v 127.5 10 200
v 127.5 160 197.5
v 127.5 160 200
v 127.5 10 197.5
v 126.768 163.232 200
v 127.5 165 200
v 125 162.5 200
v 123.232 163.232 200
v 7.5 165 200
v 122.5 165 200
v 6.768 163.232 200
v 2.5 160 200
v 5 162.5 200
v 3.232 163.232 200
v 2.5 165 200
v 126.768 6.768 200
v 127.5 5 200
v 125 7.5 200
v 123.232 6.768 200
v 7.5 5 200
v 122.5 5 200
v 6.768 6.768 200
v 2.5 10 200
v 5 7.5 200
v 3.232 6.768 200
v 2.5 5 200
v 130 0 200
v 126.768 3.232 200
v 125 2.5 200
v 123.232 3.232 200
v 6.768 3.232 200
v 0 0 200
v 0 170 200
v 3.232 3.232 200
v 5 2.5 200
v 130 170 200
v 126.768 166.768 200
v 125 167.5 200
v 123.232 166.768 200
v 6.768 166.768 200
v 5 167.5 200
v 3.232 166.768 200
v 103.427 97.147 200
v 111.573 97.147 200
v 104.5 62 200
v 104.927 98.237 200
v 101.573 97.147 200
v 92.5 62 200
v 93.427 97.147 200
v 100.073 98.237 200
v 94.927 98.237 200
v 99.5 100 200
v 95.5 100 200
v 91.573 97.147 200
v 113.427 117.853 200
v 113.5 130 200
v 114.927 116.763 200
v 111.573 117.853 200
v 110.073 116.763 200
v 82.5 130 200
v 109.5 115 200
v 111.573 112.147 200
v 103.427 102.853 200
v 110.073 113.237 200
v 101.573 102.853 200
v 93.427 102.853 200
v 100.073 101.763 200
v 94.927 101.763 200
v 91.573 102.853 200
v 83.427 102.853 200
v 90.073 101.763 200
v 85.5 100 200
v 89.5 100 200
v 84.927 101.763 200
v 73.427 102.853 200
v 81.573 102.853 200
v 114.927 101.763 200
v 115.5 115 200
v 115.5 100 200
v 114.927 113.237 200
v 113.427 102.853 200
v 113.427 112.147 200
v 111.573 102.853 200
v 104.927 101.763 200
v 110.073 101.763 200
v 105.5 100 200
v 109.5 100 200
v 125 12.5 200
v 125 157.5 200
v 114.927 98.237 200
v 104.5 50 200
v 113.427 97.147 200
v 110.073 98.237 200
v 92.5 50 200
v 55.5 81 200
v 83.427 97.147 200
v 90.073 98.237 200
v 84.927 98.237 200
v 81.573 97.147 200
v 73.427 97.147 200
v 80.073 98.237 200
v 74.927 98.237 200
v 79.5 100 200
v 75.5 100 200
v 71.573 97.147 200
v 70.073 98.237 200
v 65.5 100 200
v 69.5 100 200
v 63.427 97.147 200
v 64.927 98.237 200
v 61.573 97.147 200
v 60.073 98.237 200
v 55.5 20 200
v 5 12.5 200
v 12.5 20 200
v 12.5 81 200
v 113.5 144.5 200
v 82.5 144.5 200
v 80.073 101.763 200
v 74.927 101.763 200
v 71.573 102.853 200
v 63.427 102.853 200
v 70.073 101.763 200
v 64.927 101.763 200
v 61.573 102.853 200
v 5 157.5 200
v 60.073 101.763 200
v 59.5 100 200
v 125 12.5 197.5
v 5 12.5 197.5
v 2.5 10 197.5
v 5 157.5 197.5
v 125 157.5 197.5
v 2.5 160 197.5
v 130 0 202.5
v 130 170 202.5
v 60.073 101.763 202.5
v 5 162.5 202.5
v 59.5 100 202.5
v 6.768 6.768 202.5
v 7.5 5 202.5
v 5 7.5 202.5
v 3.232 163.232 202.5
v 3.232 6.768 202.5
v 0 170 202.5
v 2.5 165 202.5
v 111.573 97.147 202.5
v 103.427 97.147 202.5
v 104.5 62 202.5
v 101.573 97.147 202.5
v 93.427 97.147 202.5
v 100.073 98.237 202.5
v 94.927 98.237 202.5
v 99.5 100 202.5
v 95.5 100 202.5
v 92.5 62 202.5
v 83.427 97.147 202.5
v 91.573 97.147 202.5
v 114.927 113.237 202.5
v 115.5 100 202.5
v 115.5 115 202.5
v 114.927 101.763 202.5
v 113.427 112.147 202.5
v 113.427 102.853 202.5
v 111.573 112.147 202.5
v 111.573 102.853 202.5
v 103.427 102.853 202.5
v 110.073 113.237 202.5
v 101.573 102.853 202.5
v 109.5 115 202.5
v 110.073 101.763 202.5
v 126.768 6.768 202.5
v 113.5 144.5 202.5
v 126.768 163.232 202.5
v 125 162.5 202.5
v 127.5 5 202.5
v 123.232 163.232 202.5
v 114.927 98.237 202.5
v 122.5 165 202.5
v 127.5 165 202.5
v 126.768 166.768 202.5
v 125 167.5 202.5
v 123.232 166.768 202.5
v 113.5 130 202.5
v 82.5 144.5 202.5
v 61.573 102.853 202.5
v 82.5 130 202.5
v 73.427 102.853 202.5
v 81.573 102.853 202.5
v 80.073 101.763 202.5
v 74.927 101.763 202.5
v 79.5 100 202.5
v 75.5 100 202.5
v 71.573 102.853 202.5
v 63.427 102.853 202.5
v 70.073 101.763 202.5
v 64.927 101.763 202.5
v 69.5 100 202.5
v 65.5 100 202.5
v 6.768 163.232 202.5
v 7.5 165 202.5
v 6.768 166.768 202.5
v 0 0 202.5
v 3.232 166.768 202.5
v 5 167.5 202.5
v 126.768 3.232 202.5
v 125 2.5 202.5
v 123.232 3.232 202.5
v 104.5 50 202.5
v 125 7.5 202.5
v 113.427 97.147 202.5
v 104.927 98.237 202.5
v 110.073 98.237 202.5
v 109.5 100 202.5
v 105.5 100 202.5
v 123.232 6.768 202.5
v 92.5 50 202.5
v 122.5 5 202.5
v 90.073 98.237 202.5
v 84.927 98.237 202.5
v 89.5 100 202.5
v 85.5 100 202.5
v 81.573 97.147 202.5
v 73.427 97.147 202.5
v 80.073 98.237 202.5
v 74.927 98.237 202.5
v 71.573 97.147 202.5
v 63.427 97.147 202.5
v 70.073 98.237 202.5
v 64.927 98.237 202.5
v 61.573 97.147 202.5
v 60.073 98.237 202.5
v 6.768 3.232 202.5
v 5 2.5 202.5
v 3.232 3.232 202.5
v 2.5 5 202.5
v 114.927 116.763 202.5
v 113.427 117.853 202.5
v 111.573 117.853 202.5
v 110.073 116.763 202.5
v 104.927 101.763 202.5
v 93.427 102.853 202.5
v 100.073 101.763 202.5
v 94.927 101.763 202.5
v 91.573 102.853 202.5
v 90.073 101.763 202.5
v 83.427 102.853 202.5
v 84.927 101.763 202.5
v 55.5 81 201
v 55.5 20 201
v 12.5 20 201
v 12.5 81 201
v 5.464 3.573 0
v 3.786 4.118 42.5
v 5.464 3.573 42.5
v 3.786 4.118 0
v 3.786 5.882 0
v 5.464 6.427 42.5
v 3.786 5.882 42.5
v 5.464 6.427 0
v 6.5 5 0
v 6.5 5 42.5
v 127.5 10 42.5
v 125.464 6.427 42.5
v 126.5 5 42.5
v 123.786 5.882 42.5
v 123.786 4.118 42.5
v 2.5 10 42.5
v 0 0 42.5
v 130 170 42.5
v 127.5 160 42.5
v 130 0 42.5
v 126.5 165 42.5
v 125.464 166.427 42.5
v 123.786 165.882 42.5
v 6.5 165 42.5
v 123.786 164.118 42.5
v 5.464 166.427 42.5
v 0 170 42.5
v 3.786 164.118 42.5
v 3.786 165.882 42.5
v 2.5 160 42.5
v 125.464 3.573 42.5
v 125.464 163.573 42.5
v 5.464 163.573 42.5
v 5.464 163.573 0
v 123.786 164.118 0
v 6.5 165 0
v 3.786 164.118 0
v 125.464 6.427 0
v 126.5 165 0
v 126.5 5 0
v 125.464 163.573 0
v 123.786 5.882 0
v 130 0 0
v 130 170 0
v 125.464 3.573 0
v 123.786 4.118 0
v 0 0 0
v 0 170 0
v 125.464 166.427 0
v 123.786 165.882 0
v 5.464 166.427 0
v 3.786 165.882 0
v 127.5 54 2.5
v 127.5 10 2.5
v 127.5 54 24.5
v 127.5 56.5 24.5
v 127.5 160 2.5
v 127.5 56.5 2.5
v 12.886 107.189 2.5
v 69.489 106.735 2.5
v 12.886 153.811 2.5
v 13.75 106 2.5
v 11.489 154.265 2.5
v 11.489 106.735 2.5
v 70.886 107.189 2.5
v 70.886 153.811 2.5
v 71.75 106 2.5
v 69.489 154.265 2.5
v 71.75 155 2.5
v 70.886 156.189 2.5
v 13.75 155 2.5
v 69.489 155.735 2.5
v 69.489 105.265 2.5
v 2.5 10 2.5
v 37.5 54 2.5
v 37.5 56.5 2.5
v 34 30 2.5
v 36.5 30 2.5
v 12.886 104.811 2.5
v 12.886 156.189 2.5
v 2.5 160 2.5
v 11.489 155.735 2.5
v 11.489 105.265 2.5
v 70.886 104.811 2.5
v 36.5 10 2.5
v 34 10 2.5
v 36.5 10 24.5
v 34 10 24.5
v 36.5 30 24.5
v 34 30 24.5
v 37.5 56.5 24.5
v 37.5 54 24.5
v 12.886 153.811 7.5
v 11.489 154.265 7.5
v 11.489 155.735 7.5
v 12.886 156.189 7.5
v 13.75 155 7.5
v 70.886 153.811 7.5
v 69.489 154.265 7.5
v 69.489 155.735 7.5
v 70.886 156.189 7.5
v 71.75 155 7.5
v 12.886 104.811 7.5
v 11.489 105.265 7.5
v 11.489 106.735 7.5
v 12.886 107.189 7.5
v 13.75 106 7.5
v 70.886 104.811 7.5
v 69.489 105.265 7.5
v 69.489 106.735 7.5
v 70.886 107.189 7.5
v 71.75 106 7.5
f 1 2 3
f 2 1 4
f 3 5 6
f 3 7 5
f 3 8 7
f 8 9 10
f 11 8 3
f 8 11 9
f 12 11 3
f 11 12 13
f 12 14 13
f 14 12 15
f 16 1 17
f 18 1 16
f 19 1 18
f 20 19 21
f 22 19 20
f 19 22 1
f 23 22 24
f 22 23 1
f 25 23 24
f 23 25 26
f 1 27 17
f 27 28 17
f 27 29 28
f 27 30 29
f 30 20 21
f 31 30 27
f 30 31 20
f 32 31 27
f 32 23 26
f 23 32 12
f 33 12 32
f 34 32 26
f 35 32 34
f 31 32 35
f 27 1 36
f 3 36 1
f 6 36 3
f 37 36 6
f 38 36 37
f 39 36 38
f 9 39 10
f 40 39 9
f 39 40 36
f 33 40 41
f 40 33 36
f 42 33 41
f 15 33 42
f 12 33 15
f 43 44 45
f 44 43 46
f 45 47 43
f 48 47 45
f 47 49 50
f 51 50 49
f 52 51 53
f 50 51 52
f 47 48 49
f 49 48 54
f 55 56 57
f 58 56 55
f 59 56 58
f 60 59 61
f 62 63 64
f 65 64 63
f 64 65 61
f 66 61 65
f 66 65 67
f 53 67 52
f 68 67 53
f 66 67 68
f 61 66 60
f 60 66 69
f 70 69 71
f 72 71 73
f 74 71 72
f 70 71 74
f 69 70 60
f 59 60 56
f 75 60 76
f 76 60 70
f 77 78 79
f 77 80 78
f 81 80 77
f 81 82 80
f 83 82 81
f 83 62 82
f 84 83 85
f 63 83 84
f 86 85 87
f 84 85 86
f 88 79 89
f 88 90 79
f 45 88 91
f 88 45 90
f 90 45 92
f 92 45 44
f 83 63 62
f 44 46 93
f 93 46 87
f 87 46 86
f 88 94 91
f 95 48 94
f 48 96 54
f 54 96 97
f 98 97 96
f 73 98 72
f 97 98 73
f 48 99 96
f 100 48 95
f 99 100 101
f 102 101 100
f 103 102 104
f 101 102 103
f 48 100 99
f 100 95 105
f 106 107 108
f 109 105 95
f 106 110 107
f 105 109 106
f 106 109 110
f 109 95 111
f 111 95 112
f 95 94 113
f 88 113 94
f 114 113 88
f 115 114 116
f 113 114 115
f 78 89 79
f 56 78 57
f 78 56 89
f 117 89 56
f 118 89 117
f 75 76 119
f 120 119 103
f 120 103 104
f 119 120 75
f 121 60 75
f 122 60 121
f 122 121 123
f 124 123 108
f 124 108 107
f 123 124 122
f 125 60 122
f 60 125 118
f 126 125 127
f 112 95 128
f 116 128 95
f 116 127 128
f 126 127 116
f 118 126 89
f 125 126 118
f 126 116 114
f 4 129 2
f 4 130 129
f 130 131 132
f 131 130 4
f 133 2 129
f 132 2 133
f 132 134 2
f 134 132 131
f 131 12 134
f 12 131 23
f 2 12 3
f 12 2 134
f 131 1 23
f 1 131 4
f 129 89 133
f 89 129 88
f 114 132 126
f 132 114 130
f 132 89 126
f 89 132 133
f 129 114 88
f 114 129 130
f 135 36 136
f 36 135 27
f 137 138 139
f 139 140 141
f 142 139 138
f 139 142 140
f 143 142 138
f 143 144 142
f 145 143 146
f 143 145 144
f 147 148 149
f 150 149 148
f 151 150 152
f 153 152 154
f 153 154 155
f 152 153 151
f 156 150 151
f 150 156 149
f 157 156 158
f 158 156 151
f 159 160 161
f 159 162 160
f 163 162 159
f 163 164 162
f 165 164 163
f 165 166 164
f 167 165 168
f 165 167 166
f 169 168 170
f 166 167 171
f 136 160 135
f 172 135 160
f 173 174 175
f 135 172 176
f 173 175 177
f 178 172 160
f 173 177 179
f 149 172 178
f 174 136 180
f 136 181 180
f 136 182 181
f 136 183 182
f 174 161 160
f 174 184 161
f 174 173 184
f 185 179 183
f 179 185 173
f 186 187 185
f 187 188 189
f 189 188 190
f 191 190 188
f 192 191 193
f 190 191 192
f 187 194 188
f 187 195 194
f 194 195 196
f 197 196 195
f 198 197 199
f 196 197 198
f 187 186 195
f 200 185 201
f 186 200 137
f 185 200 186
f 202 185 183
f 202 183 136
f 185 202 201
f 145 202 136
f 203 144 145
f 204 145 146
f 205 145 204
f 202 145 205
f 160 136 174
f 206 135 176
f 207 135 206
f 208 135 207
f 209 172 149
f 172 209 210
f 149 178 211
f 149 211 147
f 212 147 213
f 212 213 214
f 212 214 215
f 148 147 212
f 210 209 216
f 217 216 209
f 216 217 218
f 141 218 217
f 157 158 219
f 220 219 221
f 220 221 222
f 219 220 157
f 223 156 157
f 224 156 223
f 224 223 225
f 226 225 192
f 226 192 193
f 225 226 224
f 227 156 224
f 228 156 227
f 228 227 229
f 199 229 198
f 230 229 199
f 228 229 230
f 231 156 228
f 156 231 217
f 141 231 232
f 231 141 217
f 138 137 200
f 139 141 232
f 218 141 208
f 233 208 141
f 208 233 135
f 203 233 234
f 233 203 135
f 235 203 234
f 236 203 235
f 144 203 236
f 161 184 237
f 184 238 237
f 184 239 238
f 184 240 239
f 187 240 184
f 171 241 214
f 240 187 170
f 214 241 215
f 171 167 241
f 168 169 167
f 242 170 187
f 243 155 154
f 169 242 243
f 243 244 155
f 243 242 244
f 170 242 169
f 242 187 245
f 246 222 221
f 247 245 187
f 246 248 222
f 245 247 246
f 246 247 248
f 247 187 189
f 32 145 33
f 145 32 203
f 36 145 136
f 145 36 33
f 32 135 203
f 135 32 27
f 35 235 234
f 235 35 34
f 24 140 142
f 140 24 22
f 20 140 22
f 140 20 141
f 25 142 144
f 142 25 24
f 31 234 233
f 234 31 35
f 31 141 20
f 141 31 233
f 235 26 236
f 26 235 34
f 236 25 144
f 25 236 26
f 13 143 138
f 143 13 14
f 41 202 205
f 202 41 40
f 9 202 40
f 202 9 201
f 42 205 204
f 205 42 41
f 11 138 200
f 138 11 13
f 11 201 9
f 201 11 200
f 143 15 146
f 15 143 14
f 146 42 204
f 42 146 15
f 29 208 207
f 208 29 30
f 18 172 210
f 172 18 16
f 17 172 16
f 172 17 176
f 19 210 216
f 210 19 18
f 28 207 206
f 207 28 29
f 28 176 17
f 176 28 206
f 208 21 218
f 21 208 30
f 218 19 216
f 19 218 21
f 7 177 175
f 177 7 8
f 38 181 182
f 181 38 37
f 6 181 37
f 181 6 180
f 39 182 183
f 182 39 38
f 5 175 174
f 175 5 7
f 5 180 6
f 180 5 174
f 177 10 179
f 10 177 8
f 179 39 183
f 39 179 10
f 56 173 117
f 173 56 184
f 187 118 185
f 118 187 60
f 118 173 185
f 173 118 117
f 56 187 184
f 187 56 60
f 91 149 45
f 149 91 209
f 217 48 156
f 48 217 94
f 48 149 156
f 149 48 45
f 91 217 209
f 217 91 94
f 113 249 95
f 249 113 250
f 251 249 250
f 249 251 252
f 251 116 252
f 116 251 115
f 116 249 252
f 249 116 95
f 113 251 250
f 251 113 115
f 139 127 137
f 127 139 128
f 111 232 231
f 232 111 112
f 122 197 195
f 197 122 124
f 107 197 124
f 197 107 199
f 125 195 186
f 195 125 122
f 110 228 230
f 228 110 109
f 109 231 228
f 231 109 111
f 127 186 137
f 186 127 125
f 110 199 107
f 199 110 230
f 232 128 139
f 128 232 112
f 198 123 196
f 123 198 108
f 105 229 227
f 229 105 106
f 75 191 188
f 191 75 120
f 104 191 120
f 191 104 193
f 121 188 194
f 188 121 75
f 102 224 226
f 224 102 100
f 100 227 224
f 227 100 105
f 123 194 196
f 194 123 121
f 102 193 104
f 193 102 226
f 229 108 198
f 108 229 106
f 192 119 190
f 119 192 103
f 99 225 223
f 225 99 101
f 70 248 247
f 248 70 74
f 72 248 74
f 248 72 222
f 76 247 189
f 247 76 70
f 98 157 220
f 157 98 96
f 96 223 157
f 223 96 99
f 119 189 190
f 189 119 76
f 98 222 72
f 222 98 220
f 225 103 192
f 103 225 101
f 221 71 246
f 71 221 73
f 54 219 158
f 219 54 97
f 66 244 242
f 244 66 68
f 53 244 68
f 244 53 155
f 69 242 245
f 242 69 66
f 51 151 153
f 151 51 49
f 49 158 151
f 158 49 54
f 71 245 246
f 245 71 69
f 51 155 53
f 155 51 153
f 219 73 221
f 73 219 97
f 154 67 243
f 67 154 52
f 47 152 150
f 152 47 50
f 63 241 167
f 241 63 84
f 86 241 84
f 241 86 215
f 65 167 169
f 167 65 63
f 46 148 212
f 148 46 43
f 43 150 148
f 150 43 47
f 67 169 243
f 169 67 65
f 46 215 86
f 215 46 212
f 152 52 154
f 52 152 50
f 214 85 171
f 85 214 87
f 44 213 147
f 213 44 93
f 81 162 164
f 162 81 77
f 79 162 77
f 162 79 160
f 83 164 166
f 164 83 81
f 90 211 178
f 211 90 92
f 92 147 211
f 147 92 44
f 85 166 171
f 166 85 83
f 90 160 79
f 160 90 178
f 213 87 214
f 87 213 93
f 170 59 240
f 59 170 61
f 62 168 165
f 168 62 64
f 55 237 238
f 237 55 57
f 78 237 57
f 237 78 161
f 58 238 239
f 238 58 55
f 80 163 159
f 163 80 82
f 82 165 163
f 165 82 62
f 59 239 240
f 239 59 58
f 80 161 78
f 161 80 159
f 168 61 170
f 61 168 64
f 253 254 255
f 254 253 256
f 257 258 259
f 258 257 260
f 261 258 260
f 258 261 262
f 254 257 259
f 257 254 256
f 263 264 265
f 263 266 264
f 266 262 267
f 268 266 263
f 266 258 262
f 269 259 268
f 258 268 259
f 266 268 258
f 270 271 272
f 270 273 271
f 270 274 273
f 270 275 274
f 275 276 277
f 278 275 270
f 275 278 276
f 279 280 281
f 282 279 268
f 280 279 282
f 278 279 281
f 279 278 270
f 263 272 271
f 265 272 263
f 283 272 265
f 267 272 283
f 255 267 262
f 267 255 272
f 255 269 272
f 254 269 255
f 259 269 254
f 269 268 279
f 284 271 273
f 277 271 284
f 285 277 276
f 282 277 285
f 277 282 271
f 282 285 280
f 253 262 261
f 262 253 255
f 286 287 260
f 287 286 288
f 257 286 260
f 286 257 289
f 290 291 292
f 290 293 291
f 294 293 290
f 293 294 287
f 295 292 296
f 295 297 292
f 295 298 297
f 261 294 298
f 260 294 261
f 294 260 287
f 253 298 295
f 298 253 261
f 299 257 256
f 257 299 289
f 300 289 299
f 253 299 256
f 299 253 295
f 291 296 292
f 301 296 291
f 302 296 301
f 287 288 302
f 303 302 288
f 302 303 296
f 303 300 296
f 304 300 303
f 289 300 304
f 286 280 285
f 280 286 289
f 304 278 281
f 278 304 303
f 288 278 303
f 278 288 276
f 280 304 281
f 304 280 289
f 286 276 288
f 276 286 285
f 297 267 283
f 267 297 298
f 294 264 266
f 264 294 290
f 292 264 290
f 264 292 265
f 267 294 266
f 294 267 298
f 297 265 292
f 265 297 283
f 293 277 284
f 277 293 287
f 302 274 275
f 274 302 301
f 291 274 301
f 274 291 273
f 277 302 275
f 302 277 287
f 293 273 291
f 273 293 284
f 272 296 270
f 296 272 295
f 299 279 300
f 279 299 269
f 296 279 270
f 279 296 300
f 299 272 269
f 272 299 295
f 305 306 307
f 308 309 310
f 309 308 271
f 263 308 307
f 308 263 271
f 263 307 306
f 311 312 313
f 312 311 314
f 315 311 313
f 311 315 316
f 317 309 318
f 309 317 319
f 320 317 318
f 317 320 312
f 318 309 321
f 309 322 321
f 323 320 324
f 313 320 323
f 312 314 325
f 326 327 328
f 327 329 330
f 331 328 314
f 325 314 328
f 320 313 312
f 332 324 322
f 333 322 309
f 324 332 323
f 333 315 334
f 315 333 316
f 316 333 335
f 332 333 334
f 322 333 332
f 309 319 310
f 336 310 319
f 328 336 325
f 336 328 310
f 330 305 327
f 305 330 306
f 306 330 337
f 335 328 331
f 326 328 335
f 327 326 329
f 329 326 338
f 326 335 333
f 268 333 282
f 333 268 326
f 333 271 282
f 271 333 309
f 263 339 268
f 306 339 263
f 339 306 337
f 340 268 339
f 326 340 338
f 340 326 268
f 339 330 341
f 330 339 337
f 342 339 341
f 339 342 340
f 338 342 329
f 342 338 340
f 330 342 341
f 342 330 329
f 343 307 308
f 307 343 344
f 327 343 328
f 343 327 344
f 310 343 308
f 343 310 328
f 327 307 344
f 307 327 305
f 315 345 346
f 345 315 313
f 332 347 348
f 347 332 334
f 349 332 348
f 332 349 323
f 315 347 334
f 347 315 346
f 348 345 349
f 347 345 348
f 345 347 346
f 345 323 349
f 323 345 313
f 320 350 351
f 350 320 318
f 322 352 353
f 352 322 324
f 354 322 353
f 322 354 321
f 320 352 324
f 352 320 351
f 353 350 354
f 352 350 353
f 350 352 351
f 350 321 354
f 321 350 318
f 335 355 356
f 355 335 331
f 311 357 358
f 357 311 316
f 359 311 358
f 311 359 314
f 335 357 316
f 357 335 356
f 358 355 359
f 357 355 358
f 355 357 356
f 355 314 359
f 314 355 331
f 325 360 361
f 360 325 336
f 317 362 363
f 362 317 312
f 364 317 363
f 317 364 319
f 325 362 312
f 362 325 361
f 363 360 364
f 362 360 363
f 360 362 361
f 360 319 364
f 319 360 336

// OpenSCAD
module box_upper(
size_x, // x size of the lid
size_y, // y size of the lid
thickness, // thickness of the lid
screw_offset, // both x and y offset for screw hole from the corner to the center of the hole
screw_hole_size,
rectangle_holes, // array of [x,y, size_x, size_y] - x,y is the ofset to the left upper corner
circle_holes, // array of [x,y, diameter] - x,y is the offset from center

){
    offset_x = thickness;
    offset_y = 2*screw_offset;
    new_x=size_x+2*offset_x;
    new_y=size_y+2*offset_y;
    difference(){
        union(){
            cube([size_x+2*thickness, size_y+4*screw_offset, thickness]);
            //brim
            translate([thickness,2*screw_offset,-thickness])
            difference(){
                    cube([size_x, size_y, thickness]);
                    translate([thickness, thickness,0])
                    cube([size_x-2*thickness, size_y-2*thickness, thickness]);
            }
        }
        // screw holes
        for(screw_x = [screw_offset, new_x-screw_offset]){
            for(screw_y = [screw_offset, new_y - screw_offset]){
                translate([screw_x, screw_y, 0])
                    cylinder(h = thickness, d = screw_hole_size);
            }
        }
        // other holes
        for(object = rectangle_holes){
            translate([object[0]+offset_x, object[1]+offset_y,-object[4]])
                cube([object[2], object[3], thickness]);
        }
        for(object = circle_holes){
            translate([object[0]+offset_x, object[1]+offset_y,0])
                cylinder(h=thickness, d=object[2]);
        }
    }
}

module box_lower(
    size_x, // x size of the box
    size_y, // y size of the box
    size_z, // z size (height) of the box
    thickness, // thickness of the lid
    screw_offset, // both x and y offset for screw hole from the corner to the center of the hole
    screw_hole_size,
    walls, // array of [x,y, size_x, size_y, size_z] - x,y is the offset to the left upper corner,
    columns, // array of [x,y, diameter, height]
){
    offset_x = thickness;
    offset_y = 2*screw_offset;
    offset_z = thickness;
    new_x=size_x+2*offset_x;
    new_y=size_y+2*offset_y;
    new_z=size_z+offset_z;
    difference(){
        cube([new_x, new_y, new_z]);
        translate([thickness, 2*screw_offset, thickness])
            cube([size_x, size_y, size_z]);
        // screw holes
        for(screw_x = [screw_offset, new_x-screw_offset]){
            for(screw_y = [screw_offset, new_y - screw_offset]){
                translate([screw_x, screw_y, 0])
                    cylinder(h = new_z, d = screw_hole_size);
            }
        }
    }
    for(object = walls){
        translate([object[0]+offset_x, object[1]+offset_y, offset_z])
            cube([object[2], object[3], object[4]]);
    }
    
    for(object = columns){
        translate([object[0]+offset_x, object[1]+offset_y, offset_z])
            cylinder(d = object[2], h = object[3]);
    }
}
translate([0,0, 200])
box_upper(
size_x=125,
size_y=150,
thickness=2.5,
screw_offset=5,
screw_hole_size=5,
rectangle_holes=[
    [80, 120, 31, 14.5,0], // display
    [90, 40, 12, 12,0], // button 
    [10, 10, 43, 61, 1.5] // NFC 
], 
circle_holes=[
    [60,90,6], // HP
    [70,90,6],
    [80,90,6],
    [90,90,6],
    [100,90,6],
    [110,90,6],
    [110,105,6],//status
]
);
rpi_screw1_x = 10;
rpi_screw1_y = 145;
box_lower(
size_x=125,
size_y=150,
size_z =40,
thickness=2.5,
screw_offset=5,
screw_hole_size=3,
walls=[
    [125-91-2.5, 0, 2.5, 20, 22], // powerbank short
    [125-90,44,91,2.5,22] // powerbonk long
],
columns=[
    [rpi_screw1_x,rpi_screw1_y,2.5,5], // RPI screw columns
    [rpi_screw1_x+58,rpi_screw1_y,2.5,5],
    [rpi_screw1_x,rpi_screw1_y-49,2.5,5],
    [rpi_screw1_x+58,rpi_screw1_y-49,2.5,5]
]
);
